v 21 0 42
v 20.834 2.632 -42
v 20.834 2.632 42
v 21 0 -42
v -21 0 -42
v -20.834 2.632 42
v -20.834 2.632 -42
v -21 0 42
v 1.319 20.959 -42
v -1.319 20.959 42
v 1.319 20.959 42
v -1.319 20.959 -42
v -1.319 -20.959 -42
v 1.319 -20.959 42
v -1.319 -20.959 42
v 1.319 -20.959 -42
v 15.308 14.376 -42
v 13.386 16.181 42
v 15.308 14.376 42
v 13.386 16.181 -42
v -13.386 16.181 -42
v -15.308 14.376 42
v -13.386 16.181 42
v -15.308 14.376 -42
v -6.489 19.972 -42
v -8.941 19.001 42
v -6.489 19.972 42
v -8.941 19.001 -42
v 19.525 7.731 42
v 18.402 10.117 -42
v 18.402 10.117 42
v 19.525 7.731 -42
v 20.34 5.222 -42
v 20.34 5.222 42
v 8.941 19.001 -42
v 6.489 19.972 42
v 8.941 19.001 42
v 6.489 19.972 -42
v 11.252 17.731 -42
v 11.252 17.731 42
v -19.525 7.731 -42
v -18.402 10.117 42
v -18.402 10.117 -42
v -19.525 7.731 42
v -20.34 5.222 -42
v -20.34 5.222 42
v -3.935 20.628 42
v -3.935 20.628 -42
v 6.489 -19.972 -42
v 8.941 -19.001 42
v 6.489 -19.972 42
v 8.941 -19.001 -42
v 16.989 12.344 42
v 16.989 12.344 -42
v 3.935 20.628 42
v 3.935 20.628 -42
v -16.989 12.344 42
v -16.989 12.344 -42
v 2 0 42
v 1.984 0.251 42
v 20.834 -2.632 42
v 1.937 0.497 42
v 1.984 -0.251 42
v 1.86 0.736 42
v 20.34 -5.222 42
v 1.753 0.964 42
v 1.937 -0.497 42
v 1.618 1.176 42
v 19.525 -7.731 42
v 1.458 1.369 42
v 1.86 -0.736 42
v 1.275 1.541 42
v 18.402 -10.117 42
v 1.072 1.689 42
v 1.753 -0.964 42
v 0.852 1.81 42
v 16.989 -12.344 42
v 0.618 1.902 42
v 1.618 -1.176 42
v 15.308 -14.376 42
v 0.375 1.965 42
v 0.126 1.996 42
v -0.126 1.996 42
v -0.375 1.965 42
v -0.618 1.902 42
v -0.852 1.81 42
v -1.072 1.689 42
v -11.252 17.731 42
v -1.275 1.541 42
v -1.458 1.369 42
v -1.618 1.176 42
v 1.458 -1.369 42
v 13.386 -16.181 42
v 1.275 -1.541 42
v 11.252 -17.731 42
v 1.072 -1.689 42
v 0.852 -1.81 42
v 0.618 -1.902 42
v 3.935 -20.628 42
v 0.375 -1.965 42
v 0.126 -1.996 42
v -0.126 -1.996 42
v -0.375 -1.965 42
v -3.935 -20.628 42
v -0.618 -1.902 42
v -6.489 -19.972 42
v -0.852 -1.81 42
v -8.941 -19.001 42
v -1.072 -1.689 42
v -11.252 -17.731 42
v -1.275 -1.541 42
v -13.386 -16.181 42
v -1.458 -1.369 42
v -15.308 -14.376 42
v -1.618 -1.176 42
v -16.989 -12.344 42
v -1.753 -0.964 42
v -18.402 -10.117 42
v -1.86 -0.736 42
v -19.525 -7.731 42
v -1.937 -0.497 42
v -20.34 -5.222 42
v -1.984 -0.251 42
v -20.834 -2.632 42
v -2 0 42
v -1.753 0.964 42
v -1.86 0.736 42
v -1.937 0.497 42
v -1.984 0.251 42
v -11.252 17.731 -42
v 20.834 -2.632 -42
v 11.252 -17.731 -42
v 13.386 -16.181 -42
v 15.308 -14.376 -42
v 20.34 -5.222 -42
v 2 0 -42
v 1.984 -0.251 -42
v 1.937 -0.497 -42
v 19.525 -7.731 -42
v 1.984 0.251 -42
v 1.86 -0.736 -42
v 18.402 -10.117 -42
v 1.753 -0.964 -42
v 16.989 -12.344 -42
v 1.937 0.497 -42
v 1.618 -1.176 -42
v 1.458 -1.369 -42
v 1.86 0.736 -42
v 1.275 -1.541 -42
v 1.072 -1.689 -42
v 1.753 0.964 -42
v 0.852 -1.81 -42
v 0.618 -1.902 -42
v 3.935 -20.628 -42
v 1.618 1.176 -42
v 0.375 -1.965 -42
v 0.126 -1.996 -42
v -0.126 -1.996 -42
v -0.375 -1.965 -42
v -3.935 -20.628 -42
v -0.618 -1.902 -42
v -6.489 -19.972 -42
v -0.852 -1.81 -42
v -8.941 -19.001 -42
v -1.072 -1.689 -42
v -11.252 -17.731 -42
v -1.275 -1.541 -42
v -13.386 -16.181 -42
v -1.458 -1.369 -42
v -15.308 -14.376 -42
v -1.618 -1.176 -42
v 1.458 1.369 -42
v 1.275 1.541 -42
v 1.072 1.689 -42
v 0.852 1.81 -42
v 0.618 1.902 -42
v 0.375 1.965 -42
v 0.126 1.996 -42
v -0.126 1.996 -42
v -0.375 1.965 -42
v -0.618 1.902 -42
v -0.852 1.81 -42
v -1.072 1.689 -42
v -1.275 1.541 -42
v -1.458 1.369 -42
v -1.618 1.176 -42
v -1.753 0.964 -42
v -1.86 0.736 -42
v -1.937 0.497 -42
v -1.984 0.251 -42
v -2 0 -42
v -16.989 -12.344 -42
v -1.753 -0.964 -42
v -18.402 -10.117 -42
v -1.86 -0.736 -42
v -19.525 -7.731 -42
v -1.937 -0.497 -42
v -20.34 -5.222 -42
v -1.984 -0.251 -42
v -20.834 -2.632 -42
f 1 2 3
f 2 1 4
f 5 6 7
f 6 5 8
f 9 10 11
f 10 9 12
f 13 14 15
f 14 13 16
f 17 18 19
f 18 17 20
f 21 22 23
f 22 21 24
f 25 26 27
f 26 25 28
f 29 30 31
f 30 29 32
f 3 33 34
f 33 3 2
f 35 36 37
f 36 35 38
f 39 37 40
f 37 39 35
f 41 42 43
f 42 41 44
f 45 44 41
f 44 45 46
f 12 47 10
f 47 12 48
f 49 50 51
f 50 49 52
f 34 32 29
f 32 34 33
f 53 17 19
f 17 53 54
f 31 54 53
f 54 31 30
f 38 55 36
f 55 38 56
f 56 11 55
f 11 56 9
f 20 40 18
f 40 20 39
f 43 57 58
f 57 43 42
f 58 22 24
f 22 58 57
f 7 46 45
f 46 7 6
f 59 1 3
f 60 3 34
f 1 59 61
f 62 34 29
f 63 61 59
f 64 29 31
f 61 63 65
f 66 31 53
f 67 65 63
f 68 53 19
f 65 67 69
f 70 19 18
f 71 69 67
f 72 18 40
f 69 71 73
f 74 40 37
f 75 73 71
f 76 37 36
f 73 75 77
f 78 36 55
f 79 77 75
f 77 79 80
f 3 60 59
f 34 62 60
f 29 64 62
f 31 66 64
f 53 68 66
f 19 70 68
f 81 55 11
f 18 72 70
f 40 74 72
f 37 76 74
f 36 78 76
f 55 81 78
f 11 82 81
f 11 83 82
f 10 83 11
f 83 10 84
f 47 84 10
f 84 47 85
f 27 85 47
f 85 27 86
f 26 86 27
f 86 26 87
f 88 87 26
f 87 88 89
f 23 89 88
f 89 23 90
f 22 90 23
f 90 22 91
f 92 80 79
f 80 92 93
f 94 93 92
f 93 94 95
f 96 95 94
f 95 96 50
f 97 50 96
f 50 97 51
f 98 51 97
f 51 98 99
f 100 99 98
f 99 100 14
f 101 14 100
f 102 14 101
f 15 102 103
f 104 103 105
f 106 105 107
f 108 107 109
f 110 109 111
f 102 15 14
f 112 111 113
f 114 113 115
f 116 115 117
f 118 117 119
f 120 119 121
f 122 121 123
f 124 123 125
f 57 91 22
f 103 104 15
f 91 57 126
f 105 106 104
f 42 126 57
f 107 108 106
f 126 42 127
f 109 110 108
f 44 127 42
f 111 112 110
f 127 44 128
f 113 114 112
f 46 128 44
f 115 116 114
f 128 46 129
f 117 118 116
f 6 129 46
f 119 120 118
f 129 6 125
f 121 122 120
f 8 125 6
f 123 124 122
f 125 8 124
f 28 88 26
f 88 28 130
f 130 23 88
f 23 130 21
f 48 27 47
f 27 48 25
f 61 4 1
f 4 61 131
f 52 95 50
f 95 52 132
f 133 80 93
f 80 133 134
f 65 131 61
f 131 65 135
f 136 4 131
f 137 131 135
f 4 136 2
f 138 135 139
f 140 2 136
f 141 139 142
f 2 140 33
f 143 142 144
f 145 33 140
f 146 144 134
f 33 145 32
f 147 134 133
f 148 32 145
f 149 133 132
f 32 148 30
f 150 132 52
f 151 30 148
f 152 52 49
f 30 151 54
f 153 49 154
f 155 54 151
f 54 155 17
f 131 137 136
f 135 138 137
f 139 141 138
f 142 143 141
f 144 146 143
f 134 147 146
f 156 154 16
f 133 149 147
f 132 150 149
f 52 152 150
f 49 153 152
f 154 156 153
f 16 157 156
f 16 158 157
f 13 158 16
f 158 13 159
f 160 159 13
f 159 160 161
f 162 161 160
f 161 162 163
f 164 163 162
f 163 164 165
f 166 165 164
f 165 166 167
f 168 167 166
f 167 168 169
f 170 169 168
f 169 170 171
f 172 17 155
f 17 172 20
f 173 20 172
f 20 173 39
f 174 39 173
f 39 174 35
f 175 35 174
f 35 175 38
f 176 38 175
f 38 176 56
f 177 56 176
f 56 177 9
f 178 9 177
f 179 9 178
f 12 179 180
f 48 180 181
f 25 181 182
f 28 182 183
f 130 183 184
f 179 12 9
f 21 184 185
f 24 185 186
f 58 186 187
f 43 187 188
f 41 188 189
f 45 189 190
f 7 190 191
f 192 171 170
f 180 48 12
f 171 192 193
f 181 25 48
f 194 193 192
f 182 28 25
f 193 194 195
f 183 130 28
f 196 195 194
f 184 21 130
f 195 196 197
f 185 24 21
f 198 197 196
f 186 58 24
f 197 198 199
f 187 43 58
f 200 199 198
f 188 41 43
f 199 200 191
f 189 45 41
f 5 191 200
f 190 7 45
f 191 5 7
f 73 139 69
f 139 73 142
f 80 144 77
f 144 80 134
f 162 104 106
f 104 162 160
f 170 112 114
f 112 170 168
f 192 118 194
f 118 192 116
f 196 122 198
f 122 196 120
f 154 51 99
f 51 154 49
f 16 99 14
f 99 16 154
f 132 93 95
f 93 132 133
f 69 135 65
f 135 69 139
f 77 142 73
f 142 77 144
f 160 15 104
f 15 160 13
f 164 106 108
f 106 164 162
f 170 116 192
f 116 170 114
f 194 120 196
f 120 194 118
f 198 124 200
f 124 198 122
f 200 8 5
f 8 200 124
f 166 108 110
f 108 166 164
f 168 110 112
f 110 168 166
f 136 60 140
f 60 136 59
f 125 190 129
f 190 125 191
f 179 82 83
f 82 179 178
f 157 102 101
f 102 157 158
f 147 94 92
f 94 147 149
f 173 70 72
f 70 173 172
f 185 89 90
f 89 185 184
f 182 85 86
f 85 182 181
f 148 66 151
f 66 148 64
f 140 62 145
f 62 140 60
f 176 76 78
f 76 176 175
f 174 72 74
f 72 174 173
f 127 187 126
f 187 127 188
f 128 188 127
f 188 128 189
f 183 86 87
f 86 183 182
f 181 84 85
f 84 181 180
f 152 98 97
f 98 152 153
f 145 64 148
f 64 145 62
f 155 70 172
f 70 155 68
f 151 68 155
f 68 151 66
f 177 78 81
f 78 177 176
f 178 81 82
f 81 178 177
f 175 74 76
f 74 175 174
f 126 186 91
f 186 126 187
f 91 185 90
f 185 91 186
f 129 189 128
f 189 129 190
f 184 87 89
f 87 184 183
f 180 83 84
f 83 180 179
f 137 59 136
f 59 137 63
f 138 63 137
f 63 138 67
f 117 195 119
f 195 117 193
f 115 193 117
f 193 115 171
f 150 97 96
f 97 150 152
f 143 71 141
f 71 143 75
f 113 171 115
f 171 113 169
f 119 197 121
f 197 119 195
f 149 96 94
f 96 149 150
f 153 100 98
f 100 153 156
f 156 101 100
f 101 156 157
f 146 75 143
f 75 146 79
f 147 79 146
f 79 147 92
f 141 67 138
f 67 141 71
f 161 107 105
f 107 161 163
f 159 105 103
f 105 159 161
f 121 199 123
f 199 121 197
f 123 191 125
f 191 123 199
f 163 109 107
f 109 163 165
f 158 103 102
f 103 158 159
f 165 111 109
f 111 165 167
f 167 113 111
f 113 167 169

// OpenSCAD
$fn = 50;


difference() {
	union() {
		translate(v = [0, 0, -42.0000000000]) {
			cylinder(h = 84, r = 21.0000000000);
		}
	}
	union() {
		translate(v = [0, 0, -100.0000000000]) {
			cylinder(h = 200, r = 2);
		}
	}
}
